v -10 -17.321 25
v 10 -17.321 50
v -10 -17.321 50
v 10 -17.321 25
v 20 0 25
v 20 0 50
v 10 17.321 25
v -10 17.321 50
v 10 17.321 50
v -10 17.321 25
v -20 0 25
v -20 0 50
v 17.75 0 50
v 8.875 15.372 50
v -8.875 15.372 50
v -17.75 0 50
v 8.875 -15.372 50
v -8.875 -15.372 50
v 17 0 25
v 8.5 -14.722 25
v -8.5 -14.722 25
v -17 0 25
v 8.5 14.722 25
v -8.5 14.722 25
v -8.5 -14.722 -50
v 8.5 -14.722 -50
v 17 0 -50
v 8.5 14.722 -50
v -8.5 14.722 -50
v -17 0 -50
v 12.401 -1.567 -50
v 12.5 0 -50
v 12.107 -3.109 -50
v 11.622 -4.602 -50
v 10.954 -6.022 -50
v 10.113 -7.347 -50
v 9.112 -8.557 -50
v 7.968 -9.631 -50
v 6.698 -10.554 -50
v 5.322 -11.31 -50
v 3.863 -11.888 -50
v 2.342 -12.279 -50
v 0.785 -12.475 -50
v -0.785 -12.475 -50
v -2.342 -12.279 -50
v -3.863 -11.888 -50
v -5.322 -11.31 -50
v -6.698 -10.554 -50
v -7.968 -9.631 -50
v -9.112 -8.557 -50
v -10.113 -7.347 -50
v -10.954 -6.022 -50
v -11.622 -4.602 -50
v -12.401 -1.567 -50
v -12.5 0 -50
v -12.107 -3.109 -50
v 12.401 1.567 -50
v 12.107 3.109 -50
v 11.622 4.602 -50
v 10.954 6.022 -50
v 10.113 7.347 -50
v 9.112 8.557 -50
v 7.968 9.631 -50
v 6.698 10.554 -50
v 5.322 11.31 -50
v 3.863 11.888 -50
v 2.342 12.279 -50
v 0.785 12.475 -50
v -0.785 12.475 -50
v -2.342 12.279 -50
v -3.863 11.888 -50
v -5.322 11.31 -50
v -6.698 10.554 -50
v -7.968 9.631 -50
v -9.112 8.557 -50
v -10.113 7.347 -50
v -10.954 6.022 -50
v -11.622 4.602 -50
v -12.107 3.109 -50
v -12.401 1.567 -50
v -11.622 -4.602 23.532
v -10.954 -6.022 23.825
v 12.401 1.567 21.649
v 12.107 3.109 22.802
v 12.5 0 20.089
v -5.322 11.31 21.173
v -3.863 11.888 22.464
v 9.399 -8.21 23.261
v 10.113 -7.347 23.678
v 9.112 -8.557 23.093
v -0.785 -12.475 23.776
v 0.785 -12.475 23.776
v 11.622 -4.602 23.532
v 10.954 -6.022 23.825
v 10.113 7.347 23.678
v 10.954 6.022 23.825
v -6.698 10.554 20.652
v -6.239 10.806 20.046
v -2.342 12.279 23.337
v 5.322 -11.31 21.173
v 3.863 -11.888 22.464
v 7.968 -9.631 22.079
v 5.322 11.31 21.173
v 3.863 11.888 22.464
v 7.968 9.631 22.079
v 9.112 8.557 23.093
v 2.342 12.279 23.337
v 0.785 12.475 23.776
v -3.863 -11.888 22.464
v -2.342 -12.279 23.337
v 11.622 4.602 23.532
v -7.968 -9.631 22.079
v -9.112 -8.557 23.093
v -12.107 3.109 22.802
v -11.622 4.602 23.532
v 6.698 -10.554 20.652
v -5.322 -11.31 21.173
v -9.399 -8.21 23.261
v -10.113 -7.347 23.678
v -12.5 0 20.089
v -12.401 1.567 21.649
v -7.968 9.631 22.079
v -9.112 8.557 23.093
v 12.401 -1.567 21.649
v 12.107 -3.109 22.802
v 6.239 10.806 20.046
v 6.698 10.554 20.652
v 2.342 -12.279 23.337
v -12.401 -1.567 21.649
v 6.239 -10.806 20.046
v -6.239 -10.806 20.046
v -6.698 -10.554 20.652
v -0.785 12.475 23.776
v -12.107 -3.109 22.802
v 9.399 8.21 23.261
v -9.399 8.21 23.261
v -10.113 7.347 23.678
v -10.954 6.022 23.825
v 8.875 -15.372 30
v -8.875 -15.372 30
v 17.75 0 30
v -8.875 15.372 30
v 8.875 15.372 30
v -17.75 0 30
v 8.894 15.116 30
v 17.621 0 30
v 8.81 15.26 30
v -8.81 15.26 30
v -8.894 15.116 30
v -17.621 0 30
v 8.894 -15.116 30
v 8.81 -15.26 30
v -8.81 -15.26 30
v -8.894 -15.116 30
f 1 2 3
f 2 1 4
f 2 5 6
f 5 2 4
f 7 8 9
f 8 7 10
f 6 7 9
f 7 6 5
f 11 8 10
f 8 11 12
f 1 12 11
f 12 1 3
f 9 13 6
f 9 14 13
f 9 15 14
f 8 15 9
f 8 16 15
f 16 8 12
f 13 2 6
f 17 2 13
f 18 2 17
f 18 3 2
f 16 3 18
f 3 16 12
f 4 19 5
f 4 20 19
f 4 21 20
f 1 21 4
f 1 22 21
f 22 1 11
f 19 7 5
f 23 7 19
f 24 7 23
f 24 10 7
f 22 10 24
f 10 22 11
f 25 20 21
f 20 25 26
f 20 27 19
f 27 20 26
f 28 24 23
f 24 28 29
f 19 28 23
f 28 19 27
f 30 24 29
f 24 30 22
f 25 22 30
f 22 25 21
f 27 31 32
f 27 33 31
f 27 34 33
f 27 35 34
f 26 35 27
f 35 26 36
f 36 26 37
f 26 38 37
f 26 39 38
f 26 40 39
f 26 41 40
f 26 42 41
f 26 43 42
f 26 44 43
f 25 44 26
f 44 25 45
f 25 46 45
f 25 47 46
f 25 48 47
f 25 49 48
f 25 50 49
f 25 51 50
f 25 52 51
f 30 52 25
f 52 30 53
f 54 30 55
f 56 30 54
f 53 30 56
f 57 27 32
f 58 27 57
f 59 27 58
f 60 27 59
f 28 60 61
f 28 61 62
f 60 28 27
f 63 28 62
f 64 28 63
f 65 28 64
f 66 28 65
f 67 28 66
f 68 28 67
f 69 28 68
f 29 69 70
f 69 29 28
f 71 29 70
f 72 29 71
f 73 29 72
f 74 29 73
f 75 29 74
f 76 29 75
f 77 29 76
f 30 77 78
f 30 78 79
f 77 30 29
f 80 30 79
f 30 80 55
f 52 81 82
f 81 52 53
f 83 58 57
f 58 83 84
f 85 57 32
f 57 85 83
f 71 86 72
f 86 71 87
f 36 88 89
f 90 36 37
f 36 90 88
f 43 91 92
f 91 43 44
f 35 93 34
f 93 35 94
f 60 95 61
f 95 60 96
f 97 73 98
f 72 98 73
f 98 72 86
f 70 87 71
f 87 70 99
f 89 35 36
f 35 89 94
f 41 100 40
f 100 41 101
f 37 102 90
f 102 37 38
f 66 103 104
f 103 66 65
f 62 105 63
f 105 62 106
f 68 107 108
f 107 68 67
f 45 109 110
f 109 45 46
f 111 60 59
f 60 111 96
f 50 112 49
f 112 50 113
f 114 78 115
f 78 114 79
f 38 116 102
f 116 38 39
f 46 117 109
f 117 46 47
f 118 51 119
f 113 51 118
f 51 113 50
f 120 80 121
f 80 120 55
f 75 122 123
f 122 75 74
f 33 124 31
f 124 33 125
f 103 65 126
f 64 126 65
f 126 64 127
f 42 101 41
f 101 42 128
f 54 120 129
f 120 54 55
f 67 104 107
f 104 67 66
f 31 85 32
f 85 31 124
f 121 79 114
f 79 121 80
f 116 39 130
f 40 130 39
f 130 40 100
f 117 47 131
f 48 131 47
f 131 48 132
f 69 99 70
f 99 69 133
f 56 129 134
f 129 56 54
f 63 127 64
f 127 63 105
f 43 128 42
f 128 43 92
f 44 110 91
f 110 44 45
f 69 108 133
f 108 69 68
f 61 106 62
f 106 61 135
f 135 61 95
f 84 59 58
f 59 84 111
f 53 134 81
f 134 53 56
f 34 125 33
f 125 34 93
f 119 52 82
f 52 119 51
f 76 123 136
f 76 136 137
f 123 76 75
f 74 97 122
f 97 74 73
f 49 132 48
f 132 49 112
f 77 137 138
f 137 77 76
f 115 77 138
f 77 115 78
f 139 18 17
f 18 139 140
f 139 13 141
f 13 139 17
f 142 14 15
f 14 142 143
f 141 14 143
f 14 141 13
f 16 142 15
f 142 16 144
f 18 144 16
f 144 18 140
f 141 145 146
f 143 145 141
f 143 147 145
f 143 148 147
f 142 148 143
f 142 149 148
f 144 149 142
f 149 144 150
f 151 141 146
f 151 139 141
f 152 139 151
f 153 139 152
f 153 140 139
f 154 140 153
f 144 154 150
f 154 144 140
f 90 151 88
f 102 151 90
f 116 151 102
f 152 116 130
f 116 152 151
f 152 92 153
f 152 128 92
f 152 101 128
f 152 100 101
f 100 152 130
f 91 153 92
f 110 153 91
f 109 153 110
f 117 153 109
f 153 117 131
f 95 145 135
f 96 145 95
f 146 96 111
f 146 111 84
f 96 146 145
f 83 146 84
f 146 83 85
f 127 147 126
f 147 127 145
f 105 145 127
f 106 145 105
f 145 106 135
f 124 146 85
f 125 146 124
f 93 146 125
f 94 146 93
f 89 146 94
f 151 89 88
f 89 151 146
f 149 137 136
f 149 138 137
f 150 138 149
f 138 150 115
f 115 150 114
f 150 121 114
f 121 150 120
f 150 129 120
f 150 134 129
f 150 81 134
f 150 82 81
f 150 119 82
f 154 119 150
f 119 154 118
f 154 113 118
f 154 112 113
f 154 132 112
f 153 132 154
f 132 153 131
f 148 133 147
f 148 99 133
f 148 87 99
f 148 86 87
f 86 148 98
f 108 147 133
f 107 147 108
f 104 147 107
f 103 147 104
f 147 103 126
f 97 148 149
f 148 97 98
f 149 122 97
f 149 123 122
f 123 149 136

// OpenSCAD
$fn=50;
LargoParte = 100;

difference(){
    union(){
        translate([0,0,LargoParte/2 - LargoParte/8 ])
            cylinder(r=20, h = LargoParte/4, $fn=6,center=true);
        cylinder(r=17, h = LargoParte, $fn=6,center=true);
    }
    cylinder(r=12.5, h = LargoParte+1, center=true);
    translate([0,0,LargoParte/2 - LargoParte/8 + 5])
        cylinder(r=17.75, h = LargoParte/4, $fn=6,center=true);
    translate([0,0,LargoParte/2 - LargoParte/4-2.25  ])
        cylinder(r2=17.75, r1=10, h = 15, $fn=6,center=true);
}
//     translate([0,0,LargoParte/2 - 7.5 ])
//         cylinder(r2=17, r1=10, h = 15, $fn=6,center=true);
